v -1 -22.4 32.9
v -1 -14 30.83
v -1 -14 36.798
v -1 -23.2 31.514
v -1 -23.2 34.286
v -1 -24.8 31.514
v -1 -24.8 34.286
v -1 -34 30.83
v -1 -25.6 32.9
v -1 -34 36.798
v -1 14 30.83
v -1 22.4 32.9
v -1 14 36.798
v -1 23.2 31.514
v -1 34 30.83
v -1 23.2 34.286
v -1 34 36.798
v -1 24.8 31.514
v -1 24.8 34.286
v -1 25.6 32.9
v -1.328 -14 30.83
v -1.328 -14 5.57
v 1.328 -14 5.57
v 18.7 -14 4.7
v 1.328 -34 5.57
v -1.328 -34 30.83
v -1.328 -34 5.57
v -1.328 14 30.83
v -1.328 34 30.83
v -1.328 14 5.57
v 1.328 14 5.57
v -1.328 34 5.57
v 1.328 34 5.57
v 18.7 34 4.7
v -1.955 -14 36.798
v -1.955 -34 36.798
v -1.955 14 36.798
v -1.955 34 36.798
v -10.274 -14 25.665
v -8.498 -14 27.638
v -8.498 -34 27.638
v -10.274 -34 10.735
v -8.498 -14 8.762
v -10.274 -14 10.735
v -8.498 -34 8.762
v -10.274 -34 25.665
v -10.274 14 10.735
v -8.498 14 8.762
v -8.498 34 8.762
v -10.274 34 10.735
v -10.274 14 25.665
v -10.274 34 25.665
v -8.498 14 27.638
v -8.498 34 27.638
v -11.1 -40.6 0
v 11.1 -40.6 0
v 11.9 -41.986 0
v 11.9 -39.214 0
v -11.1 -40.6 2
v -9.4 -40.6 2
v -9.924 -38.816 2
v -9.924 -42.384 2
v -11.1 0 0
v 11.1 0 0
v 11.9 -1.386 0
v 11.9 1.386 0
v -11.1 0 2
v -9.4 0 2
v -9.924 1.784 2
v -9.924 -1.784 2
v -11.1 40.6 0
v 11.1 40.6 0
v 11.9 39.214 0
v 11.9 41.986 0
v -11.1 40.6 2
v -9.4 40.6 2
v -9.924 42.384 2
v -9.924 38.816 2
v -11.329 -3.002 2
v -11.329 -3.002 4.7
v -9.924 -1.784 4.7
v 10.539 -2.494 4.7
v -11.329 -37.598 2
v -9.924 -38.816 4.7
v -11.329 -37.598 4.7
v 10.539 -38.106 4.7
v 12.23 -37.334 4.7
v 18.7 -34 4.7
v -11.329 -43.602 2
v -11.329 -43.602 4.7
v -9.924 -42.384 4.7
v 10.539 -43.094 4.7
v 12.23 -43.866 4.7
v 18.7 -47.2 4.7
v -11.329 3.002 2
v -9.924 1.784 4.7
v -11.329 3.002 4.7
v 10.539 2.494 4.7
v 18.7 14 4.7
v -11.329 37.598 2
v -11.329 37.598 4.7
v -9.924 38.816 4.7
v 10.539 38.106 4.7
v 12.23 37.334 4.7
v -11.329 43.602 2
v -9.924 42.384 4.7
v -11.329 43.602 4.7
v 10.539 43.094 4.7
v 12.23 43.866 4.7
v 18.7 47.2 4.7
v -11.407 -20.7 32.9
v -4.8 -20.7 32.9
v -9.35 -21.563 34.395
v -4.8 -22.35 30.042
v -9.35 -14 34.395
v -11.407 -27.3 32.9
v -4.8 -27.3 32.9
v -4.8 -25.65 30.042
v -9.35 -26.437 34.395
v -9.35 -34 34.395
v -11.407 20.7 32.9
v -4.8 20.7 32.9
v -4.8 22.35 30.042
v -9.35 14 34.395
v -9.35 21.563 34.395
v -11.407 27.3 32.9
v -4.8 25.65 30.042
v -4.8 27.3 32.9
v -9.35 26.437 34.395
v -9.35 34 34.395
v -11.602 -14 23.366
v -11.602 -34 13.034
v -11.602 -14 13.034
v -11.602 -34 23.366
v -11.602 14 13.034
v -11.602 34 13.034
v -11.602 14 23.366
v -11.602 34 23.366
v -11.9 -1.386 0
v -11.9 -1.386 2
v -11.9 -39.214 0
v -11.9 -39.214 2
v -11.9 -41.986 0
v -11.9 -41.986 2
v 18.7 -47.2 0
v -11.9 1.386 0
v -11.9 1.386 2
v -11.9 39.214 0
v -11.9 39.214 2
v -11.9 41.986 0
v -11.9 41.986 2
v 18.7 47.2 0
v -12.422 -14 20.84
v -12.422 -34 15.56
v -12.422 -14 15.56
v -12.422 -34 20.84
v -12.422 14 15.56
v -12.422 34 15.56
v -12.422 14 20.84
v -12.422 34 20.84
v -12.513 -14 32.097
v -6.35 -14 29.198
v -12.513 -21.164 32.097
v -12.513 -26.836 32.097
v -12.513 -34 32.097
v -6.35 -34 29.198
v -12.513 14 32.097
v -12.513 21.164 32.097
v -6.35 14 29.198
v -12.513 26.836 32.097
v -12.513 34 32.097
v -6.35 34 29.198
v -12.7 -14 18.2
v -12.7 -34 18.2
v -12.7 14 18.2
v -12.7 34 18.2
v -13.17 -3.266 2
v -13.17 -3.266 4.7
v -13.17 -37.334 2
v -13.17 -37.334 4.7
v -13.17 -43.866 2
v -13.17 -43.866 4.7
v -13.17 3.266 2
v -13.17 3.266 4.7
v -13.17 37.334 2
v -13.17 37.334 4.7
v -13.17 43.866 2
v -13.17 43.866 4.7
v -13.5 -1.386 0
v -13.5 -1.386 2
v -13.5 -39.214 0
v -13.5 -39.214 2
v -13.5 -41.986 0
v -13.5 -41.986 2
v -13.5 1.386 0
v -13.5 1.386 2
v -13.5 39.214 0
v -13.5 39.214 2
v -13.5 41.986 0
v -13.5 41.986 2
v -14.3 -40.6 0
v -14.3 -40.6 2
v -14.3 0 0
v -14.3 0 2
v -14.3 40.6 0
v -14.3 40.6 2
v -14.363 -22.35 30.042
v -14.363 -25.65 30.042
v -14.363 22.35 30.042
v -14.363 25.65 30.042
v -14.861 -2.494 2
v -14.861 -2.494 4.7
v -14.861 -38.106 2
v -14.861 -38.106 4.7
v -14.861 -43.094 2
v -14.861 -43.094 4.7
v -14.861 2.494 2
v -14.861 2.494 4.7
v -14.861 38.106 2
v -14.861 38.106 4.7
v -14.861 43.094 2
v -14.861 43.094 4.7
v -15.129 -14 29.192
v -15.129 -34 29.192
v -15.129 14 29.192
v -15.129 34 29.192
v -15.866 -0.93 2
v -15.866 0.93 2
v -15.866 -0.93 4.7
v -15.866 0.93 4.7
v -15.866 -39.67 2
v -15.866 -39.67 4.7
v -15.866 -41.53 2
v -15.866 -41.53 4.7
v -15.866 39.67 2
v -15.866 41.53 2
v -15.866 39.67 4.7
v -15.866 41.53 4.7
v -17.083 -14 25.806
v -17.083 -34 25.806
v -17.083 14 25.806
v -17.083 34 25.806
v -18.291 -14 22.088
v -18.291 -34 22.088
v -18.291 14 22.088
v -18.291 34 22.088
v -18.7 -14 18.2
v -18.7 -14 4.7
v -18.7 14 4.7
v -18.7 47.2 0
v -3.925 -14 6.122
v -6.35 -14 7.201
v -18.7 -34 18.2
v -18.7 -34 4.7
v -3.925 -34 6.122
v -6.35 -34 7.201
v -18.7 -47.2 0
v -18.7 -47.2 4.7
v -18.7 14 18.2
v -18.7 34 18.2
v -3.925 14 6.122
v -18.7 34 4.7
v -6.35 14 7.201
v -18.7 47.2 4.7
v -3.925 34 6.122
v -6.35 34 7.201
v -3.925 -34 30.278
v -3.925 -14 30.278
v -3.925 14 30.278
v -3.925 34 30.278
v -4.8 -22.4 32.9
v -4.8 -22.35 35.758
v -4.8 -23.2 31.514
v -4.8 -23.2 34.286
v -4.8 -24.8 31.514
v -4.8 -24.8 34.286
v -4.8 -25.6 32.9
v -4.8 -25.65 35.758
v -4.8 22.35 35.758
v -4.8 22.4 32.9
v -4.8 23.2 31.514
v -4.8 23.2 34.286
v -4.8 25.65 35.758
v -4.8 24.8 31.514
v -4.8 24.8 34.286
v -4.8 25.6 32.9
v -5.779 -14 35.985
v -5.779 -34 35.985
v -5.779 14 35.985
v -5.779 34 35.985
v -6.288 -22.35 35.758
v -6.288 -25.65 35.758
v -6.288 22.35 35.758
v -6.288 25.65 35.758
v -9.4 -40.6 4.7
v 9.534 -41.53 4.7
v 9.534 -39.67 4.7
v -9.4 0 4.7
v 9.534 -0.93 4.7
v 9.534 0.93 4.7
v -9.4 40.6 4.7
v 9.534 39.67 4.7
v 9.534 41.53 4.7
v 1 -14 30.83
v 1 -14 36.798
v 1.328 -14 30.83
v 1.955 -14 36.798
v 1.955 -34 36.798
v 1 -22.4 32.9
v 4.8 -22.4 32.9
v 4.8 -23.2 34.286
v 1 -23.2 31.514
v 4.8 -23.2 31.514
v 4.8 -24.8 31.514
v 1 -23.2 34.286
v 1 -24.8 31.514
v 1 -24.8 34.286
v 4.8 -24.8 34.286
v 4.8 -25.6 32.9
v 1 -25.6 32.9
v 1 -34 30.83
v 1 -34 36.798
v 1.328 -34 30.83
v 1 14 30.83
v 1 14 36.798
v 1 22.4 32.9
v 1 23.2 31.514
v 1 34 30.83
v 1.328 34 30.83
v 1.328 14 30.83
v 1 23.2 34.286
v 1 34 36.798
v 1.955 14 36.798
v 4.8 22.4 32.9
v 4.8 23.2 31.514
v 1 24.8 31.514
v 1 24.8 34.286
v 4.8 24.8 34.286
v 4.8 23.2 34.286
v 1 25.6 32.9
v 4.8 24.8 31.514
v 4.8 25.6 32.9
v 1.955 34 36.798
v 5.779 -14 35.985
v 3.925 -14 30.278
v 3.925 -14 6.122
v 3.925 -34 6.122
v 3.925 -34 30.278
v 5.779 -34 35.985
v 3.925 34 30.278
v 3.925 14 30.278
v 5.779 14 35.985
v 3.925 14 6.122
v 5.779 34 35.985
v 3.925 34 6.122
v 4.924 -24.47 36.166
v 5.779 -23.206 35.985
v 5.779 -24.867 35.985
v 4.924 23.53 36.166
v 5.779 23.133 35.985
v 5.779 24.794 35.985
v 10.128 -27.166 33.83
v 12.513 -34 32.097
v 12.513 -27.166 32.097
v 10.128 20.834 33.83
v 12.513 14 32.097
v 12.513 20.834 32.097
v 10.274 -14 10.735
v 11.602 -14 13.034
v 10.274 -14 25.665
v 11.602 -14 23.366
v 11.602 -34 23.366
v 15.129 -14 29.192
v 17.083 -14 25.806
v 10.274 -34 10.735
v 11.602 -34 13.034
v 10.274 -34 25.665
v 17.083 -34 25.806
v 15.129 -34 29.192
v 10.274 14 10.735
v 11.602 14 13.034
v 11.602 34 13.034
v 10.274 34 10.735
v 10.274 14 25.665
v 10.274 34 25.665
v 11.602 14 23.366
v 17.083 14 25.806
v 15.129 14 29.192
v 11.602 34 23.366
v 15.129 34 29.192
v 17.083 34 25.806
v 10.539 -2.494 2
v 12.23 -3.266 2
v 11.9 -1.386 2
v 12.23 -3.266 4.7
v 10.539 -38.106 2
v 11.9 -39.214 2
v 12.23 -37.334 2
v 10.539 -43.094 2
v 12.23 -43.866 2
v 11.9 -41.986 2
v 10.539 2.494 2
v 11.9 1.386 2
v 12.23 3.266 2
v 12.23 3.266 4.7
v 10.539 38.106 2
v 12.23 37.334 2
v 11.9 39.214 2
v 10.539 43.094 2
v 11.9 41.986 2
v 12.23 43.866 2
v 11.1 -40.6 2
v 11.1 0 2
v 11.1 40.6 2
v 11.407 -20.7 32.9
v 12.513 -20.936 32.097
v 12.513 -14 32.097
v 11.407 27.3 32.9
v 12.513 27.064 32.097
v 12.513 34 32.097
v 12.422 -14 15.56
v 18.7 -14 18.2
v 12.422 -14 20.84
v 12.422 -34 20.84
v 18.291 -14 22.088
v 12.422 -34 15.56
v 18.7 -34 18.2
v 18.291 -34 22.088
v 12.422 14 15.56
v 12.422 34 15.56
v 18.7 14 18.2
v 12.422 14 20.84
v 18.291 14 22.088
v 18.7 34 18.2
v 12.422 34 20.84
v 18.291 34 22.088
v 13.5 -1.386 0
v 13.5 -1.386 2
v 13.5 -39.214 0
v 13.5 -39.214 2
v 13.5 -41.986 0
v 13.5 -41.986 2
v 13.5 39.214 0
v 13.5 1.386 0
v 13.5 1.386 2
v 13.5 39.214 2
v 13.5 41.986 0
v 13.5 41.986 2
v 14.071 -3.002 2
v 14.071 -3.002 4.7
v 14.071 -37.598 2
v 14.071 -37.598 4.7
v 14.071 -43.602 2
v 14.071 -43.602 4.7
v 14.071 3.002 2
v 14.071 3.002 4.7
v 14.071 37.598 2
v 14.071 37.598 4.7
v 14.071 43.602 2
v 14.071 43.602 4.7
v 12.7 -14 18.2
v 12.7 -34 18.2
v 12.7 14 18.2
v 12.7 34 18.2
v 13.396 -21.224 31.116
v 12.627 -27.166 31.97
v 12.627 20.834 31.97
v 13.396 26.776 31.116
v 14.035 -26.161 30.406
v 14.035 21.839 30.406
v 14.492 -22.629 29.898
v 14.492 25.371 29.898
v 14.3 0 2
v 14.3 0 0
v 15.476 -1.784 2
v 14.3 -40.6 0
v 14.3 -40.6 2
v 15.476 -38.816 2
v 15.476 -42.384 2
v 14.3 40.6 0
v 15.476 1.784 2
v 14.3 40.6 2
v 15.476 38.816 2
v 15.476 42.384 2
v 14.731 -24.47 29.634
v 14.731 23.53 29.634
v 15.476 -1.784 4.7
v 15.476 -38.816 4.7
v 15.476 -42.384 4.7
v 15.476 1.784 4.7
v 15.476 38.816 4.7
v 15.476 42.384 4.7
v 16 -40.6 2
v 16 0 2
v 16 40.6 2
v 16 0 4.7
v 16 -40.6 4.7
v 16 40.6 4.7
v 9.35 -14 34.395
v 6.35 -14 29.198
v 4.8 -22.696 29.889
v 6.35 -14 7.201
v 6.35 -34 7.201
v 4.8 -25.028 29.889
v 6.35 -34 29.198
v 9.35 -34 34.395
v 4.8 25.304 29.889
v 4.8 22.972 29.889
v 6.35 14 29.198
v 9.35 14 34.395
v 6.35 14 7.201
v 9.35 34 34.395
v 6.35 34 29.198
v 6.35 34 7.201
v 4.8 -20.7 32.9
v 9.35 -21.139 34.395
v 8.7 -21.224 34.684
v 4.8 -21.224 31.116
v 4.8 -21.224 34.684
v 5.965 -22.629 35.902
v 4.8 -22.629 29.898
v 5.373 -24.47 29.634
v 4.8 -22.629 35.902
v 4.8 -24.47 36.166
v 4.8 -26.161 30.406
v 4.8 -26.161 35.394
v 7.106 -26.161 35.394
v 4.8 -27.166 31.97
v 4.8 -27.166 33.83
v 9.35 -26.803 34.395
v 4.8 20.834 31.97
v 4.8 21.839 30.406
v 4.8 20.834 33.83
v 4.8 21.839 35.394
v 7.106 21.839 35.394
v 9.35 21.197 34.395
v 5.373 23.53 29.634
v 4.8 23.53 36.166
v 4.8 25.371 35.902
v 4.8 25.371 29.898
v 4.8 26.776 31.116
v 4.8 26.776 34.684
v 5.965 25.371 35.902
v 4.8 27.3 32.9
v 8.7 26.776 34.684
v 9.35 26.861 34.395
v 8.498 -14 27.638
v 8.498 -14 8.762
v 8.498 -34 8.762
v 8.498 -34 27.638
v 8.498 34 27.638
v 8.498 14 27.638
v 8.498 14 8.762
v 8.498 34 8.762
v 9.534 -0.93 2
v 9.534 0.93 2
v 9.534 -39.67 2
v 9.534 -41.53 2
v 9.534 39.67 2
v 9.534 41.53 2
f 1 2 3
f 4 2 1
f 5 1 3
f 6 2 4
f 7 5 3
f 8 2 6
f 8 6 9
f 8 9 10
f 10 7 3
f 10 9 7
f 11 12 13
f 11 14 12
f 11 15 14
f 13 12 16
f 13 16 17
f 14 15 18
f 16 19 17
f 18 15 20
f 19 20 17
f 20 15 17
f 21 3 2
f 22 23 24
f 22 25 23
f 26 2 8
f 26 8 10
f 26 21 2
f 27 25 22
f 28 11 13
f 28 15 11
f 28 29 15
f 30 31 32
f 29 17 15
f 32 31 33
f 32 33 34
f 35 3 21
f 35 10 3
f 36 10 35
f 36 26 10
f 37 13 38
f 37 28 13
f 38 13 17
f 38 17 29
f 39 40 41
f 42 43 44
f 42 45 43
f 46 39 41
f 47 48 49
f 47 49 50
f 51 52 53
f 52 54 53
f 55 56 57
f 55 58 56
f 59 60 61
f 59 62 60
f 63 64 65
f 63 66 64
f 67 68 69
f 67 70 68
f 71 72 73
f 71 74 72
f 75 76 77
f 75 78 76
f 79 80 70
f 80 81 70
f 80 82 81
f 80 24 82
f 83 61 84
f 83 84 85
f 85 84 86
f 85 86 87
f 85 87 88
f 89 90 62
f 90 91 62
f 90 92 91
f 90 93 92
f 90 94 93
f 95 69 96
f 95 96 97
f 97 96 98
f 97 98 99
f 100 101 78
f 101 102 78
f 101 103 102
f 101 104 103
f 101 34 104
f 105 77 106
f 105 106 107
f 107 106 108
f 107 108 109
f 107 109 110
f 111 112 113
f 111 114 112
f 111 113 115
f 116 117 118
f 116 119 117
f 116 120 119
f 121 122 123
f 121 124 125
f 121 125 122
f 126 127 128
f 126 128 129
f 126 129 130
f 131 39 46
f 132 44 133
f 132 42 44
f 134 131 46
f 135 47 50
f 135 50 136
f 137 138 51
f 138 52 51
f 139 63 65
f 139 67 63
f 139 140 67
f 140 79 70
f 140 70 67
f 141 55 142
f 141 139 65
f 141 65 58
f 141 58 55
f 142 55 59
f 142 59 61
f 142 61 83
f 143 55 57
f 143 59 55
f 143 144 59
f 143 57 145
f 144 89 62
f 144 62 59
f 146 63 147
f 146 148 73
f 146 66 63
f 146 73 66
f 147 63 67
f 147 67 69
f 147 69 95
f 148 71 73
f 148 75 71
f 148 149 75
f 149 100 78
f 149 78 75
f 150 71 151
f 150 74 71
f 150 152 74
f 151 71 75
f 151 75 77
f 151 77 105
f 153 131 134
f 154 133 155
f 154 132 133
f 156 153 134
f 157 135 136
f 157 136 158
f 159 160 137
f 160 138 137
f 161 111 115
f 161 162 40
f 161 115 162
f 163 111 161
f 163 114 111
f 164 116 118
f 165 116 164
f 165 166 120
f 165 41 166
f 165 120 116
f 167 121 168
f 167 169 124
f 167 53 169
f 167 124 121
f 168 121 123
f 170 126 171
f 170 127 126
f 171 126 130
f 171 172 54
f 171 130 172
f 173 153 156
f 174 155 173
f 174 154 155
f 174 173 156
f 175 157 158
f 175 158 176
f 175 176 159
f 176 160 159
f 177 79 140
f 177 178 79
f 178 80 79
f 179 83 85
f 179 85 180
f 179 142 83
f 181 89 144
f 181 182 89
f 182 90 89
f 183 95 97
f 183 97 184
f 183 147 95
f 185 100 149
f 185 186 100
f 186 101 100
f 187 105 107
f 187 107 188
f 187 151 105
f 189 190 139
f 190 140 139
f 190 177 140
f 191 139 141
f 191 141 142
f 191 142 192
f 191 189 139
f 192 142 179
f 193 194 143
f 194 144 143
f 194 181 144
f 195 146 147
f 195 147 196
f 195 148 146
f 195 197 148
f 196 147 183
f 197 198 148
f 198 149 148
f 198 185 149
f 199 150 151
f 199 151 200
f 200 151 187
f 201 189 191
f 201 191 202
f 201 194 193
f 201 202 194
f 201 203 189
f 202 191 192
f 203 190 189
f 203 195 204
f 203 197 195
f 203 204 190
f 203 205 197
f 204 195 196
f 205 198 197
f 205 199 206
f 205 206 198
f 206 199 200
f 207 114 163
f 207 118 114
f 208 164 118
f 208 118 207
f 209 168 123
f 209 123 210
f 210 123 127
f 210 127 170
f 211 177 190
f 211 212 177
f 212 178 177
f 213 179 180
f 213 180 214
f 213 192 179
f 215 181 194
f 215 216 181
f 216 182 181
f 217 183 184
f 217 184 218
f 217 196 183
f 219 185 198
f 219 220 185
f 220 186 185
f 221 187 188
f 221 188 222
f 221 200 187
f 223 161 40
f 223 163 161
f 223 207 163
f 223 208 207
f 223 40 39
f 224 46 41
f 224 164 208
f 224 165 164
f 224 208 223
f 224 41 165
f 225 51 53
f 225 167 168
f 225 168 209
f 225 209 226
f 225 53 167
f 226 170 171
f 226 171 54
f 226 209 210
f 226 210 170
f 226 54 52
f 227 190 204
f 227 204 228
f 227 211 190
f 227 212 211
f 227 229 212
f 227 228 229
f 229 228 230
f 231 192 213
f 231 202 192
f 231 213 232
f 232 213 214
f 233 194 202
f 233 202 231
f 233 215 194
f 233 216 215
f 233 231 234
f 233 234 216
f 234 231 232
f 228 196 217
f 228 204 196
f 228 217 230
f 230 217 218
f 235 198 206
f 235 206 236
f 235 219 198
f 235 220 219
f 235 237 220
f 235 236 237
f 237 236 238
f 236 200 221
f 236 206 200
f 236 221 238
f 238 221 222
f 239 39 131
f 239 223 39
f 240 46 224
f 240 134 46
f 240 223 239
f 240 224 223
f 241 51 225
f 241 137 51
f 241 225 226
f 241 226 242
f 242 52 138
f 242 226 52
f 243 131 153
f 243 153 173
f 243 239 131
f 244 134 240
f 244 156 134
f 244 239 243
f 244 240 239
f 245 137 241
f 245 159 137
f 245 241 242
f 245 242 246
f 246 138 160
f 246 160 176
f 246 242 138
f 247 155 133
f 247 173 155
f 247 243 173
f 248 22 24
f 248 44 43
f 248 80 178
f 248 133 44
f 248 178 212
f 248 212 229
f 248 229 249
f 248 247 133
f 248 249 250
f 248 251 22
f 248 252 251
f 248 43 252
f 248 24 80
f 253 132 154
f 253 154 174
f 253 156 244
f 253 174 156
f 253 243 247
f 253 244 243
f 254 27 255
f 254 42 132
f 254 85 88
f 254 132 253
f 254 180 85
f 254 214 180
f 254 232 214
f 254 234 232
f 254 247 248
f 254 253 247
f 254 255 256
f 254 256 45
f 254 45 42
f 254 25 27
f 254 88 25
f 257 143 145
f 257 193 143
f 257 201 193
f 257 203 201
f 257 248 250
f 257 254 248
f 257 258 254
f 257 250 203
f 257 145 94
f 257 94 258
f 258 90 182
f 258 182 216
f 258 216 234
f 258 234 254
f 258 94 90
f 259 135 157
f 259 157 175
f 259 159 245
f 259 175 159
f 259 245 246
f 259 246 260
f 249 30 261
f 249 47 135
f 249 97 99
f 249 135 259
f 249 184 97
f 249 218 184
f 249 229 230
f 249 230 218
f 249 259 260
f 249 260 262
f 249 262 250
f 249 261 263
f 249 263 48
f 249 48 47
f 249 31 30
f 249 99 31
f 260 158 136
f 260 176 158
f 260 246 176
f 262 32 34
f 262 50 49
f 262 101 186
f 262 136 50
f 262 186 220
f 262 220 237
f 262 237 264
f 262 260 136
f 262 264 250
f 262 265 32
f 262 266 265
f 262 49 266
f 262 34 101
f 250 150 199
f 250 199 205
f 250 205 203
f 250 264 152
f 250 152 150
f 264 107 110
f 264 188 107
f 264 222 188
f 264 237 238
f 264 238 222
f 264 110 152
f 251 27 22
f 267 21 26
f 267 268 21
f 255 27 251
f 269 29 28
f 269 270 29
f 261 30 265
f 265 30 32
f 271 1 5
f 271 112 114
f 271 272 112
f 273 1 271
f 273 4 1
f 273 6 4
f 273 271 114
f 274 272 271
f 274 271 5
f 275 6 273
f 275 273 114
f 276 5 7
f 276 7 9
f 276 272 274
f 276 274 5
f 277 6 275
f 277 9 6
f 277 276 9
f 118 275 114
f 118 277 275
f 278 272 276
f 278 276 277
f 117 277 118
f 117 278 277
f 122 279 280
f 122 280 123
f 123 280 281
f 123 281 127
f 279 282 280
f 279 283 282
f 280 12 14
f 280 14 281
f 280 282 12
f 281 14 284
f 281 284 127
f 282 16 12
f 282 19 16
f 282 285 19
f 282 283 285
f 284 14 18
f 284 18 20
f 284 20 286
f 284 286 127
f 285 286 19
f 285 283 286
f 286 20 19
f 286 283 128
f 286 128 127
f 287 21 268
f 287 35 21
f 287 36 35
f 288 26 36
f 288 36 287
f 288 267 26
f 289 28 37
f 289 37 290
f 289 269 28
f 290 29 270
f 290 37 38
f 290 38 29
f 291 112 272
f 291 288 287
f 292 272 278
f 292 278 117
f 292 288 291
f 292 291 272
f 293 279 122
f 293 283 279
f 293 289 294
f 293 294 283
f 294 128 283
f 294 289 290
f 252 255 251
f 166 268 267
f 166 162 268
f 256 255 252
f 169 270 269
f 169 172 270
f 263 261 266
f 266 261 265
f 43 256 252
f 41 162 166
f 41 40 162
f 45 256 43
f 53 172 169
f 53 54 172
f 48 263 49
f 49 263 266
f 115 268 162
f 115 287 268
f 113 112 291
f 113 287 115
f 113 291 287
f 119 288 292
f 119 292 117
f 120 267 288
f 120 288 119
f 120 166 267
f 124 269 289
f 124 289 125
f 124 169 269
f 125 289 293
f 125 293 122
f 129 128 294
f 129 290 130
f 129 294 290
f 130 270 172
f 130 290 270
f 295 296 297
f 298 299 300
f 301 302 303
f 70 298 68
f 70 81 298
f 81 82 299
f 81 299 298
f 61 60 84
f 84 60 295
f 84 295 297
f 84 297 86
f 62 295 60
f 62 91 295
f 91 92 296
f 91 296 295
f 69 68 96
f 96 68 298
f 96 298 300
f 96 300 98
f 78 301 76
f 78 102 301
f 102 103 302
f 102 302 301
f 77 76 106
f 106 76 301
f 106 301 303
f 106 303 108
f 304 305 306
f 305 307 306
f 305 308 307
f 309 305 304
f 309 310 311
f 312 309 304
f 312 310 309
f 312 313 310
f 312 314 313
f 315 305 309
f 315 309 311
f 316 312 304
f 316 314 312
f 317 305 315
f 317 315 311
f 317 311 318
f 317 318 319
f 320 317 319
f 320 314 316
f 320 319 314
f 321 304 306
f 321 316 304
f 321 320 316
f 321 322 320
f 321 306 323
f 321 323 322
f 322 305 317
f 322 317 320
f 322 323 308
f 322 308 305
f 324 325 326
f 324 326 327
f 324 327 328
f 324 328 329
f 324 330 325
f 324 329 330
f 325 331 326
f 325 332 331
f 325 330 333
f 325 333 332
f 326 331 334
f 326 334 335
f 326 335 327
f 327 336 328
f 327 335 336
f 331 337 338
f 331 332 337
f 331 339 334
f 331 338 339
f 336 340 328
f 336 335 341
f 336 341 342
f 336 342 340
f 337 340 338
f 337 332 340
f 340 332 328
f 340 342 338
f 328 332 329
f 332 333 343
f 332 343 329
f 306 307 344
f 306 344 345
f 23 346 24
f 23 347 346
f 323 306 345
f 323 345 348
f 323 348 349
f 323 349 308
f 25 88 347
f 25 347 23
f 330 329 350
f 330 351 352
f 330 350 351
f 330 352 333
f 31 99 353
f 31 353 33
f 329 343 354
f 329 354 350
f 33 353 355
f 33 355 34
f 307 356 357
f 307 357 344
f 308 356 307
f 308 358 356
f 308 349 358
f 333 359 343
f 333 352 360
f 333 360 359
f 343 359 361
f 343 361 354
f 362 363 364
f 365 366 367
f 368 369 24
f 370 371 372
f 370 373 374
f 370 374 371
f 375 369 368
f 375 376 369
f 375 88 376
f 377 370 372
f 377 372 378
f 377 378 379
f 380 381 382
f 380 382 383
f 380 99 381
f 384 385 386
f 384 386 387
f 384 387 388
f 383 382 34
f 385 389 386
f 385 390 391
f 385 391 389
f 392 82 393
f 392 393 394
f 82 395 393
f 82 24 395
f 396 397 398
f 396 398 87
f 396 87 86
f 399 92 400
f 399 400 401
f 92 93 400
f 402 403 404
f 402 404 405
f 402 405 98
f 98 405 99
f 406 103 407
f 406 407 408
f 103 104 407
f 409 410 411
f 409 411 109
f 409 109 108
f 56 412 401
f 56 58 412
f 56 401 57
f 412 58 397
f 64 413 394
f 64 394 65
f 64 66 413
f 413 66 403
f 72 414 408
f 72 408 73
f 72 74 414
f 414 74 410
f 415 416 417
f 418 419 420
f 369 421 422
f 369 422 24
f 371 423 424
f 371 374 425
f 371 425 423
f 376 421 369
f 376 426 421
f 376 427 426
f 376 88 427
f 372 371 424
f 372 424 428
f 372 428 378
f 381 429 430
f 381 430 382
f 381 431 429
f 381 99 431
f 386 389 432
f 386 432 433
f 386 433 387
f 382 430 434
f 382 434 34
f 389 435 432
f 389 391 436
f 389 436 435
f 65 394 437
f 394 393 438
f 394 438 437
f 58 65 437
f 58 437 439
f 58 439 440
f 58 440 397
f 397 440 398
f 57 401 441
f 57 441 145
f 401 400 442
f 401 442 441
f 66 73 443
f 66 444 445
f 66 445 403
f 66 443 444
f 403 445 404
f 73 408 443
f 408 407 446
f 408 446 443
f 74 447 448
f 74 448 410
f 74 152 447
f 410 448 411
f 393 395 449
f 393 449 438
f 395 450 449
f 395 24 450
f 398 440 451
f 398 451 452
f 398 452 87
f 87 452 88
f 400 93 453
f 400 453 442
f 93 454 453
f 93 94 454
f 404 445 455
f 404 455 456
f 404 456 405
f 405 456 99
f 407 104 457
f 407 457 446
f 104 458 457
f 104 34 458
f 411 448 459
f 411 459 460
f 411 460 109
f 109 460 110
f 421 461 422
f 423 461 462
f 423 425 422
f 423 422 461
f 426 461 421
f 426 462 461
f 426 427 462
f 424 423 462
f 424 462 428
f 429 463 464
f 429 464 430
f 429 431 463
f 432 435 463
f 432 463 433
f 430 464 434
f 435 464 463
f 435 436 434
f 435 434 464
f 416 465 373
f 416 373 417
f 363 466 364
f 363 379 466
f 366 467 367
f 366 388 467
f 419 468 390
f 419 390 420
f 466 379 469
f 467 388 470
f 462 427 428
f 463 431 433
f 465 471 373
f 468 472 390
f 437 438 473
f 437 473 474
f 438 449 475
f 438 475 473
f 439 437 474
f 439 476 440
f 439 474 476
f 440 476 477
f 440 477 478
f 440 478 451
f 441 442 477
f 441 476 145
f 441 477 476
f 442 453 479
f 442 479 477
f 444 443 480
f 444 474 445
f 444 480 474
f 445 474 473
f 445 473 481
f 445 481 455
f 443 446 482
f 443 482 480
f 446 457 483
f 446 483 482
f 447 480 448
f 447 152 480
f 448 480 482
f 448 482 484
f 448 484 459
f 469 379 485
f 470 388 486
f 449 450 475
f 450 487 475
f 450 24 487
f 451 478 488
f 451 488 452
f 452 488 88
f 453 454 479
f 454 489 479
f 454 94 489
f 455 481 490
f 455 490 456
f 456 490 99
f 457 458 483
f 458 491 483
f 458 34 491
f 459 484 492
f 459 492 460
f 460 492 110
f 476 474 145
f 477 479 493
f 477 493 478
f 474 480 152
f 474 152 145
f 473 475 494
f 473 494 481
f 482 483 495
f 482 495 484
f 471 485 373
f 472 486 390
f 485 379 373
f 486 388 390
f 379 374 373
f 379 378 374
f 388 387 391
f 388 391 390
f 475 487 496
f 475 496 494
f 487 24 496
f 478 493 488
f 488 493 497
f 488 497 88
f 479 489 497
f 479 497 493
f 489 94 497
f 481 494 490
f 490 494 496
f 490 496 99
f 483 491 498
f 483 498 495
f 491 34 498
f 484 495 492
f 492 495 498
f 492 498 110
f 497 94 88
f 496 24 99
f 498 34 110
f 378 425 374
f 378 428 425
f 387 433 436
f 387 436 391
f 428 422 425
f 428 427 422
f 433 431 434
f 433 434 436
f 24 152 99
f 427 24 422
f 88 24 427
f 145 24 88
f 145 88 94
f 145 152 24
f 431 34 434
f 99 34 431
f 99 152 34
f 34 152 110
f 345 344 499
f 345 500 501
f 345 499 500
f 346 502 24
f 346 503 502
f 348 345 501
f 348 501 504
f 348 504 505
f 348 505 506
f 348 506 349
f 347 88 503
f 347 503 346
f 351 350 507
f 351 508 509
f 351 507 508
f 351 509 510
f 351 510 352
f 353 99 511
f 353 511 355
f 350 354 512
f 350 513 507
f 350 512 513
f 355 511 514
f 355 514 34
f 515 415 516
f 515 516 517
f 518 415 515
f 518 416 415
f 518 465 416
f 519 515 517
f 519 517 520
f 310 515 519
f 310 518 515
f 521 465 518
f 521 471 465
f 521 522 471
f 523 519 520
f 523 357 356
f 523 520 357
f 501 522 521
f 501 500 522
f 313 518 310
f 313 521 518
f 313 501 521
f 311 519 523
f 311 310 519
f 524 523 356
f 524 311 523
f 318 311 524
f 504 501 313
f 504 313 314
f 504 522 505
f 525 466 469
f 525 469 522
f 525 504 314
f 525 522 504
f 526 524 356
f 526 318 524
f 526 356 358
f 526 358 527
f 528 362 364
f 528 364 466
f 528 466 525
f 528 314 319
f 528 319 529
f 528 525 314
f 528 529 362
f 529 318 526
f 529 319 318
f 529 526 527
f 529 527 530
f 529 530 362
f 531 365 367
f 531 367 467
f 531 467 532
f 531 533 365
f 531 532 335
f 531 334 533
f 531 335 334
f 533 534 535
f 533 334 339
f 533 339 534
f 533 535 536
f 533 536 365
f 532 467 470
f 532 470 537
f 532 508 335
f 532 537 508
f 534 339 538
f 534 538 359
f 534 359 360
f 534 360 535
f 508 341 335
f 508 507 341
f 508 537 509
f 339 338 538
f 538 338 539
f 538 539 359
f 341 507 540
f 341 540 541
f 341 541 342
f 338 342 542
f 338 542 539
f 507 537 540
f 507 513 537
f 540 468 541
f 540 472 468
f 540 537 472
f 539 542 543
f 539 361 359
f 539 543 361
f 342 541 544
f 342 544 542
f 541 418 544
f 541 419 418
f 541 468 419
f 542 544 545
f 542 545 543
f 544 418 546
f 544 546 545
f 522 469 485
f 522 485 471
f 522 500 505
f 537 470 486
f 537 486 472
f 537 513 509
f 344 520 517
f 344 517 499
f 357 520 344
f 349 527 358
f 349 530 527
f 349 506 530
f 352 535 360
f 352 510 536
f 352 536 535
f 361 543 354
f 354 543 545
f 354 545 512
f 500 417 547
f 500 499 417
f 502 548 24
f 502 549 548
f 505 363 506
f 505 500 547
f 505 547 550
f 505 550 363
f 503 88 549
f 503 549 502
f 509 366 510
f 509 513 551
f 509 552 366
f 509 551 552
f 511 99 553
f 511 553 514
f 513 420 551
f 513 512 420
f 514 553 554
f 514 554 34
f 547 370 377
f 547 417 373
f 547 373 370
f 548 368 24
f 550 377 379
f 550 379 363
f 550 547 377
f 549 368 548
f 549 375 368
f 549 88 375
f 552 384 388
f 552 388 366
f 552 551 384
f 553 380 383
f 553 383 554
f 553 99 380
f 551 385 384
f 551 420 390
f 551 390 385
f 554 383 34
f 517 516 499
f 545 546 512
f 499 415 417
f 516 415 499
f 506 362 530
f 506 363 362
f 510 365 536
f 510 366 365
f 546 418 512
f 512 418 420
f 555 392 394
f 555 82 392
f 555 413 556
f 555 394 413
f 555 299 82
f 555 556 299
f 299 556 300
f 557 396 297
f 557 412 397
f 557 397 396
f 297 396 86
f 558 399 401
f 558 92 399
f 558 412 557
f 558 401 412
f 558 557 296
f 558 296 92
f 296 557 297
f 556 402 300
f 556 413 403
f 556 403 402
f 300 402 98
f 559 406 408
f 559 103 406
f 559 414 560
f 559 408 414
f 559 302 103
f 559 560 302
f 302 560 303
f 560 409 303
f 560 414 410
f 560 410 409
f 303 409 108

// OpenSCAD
// file: lib/igus.scad
include <../../parameters.scad>


module efsm_04(){
    import("../../STL/external/igus/EFSM_04.stl", convexity = 5);
}
module efsm_05(){
    import("../../STL/external/igus/EFSM_05.stl", convexity = 5);
}
module efsm_06(){
    import("../../STL/external/igus/EFSM_06.stl", convexity = 5);
}
module efsm_08(){
    import("../../STL/external/igus/EFSM_08.stl", convexity = 5);
}
module efsm_10(){
    import("../../STL/external/igus/EFSM_10.stl", convexity = 5);
}
module efsm_12(){
    import("../../STL/external/igus/EFSM_12.stl", convexity = 5);
}





module kstm_05(){
    import("../../STL/external/igus/KSTM_05_1.stl", convexity = 5);
}
module kstm_06(){
    import("../../STL/external/igus/KSTM_06_2.stl", convexity = 5);
}
module kstm_08(){
    import("../../STL/external/igus/KSTM_08_3.stl", convexity = 5);
}
module kstm_10(){
    import("../../STL/external/igus/KSTM_10_4.stl", convexity = 5);
}


data_kstm_ball_height = [[5,7],[6,10],[8,10],[10,14]];
function kstm_ball_height(type) = data_kstm_ball_height[search(type, data_kstm_ball_height)[0]][1];

data_kstm_flange_holes_distance = [[5,25], [6,33], [8,33], [10,46], [12,46]];
function kstm_flange_holes_distance(type) = data_kstm_flange_holes_distance[search(type, data_kstm_flange_holes_distance)[0]][1];

data_kstm_flange_length = [[5,34], [6,43], [8,47], [10,62], [12,65]];
function kstm_flange_length(type) = data_kstm_flange_length[search(type, data_kstm_flange_length)[0]][1];

data_kstm_flange_thickness = [[5,6], [6,7], [8,9], [10,10.5], [12,12]];
function kstm_flange_width(type) = data_kstm_flange_thickness[search(type, data_kstm_flange_thickness)[0]][1];

data_kstm_ball_thickness = [[5,25], [6,33], [8,33], [10,46], [12,46]];
function kstm_ball_thickness(type) = data_kstm_ball_thickness[search(type, data_kstm_ball_thickness)[0]][1];





distance = 50;

translate([0, 0*distance,  kstm_ball_height(5)]) kstm_05();
translate([0, 1*distance, kstm_ball_height(6)]) kstm_06();
translate([0, 2*distance, kstm_ball_height(8)]) kstm_08();
translate([0, 3*distance, kstm_ball_height(10)]) kstm_10();


translate([80, 0*distance, 0]) efsm_04();
translate([80, 1*distance, 0]) efsm_05();
translate([80, 2*distance, 0]) efsm_06();
translate([80, 3*distance, 0]) efsm_08();
translate([80, 4*distance, 0]) efsm_10();
translate([80, 5*distance, 0]) efsm_12();
// main file
// dil pro pripevneni podvozkove trubky k podlozce
include <../parameters.scad>
use <lib/igus.scad>



module tube_part(l = 20, wall = 6, wall_below = 5, screw_length = 15){
    screw_l = screw_length - M3_nut_height*2;
    space = 2;
    translate([0, 0, +main_tube_outer_diameter/2 + wall_below])
    rotate([90, 0, 0])
    difference(){
        hull(){
            cylinder(d = main_tube_outer_diameter + 2*wall, h = l, center = true);
            translate([-main_tube_outer_diameter/2 - wall, -main_tube_outer_diameter/2 - wall_below, -l/2])
                cube([main_tube_outer_diameter + 2*wall, 0.1,l]);
        }
        cylinder(d = main_tube_outer_diameter, h = l + global_clearance, center = true);
        translate([0, -250 - main_tube_outer_diameter/2 -wall_below, 0]) cube(500, center = true);

        translate([-space/2, 0, -l/2])
            cube([space, 20, l]);

        rotate([0, 90, 0])
            translate([0, main_tube_outer_diameter/2 + 2, 0]){

                cylinder(d = M3_screw_diameter, h = 100, center = true);
                translate([0, 0, screw_l/2]) cylinder(d = M3_nut_diameter, h = 100);
                translate([0, 0, -screw_l/2-100]) cylinder(d = M3_nut_diameter, h = 100, $fn = 6);
        }
    }
}

module 888_2018(){

    2018_thickness_above_pipe = 2;
    thickness_above = 2018_thickness_above_pipe; // tloustka materialu mezi tyci a podlozkou

    width = chassis_suspension_basewidth + kstm_flange_length(10) + 5;
    length = main_tube_outer_diameter + 10;
    height = main_tube_outer_diameter + 2018_thickness_above_pipe + 5;

    translate([0, -chassis_top_bearing_position_y, 0])
        tube_part(l = 20, wall = 6, wall_below = M3_screw_head_height + 2 + global_clearance);

    translate([0, chassis_top_bearing_position_y, 0])
        tube_part(l = 20, wall = 6, wall_below = M3_screw_head_height + 2 + global_clearance);

    difference(){
        union(){
            translate([-main_tube_outer_diameter/2-6, -chassis_top_bearing_position_y - 20/2 - M3_nut_diameter*2, 0])
                cube([main_tube_outer_diameter+12, chassis_top_bearing_position_y*2 + 20 + M3_nut_diameter*4, 2018_thickness_above_pipe + M3_nut_height]);
        }

        for (j=[1, -1])
            translate([j*main_tube_outer_diameter/2, 0, 0])
            for (i=[-1, 0, 1]) {
                translate([0, i*(chassis_top_bearing_position_y+10 + M3_nut_diameter), 0]){
                    cylinder(d = M3_screw_diameter, h = 10);
                    translate([0, 0, 2])
                        cylinder(d = M3_nut_diameter, h = 10);
                }
            }

    }



}


888_2018();

//tube_part();
